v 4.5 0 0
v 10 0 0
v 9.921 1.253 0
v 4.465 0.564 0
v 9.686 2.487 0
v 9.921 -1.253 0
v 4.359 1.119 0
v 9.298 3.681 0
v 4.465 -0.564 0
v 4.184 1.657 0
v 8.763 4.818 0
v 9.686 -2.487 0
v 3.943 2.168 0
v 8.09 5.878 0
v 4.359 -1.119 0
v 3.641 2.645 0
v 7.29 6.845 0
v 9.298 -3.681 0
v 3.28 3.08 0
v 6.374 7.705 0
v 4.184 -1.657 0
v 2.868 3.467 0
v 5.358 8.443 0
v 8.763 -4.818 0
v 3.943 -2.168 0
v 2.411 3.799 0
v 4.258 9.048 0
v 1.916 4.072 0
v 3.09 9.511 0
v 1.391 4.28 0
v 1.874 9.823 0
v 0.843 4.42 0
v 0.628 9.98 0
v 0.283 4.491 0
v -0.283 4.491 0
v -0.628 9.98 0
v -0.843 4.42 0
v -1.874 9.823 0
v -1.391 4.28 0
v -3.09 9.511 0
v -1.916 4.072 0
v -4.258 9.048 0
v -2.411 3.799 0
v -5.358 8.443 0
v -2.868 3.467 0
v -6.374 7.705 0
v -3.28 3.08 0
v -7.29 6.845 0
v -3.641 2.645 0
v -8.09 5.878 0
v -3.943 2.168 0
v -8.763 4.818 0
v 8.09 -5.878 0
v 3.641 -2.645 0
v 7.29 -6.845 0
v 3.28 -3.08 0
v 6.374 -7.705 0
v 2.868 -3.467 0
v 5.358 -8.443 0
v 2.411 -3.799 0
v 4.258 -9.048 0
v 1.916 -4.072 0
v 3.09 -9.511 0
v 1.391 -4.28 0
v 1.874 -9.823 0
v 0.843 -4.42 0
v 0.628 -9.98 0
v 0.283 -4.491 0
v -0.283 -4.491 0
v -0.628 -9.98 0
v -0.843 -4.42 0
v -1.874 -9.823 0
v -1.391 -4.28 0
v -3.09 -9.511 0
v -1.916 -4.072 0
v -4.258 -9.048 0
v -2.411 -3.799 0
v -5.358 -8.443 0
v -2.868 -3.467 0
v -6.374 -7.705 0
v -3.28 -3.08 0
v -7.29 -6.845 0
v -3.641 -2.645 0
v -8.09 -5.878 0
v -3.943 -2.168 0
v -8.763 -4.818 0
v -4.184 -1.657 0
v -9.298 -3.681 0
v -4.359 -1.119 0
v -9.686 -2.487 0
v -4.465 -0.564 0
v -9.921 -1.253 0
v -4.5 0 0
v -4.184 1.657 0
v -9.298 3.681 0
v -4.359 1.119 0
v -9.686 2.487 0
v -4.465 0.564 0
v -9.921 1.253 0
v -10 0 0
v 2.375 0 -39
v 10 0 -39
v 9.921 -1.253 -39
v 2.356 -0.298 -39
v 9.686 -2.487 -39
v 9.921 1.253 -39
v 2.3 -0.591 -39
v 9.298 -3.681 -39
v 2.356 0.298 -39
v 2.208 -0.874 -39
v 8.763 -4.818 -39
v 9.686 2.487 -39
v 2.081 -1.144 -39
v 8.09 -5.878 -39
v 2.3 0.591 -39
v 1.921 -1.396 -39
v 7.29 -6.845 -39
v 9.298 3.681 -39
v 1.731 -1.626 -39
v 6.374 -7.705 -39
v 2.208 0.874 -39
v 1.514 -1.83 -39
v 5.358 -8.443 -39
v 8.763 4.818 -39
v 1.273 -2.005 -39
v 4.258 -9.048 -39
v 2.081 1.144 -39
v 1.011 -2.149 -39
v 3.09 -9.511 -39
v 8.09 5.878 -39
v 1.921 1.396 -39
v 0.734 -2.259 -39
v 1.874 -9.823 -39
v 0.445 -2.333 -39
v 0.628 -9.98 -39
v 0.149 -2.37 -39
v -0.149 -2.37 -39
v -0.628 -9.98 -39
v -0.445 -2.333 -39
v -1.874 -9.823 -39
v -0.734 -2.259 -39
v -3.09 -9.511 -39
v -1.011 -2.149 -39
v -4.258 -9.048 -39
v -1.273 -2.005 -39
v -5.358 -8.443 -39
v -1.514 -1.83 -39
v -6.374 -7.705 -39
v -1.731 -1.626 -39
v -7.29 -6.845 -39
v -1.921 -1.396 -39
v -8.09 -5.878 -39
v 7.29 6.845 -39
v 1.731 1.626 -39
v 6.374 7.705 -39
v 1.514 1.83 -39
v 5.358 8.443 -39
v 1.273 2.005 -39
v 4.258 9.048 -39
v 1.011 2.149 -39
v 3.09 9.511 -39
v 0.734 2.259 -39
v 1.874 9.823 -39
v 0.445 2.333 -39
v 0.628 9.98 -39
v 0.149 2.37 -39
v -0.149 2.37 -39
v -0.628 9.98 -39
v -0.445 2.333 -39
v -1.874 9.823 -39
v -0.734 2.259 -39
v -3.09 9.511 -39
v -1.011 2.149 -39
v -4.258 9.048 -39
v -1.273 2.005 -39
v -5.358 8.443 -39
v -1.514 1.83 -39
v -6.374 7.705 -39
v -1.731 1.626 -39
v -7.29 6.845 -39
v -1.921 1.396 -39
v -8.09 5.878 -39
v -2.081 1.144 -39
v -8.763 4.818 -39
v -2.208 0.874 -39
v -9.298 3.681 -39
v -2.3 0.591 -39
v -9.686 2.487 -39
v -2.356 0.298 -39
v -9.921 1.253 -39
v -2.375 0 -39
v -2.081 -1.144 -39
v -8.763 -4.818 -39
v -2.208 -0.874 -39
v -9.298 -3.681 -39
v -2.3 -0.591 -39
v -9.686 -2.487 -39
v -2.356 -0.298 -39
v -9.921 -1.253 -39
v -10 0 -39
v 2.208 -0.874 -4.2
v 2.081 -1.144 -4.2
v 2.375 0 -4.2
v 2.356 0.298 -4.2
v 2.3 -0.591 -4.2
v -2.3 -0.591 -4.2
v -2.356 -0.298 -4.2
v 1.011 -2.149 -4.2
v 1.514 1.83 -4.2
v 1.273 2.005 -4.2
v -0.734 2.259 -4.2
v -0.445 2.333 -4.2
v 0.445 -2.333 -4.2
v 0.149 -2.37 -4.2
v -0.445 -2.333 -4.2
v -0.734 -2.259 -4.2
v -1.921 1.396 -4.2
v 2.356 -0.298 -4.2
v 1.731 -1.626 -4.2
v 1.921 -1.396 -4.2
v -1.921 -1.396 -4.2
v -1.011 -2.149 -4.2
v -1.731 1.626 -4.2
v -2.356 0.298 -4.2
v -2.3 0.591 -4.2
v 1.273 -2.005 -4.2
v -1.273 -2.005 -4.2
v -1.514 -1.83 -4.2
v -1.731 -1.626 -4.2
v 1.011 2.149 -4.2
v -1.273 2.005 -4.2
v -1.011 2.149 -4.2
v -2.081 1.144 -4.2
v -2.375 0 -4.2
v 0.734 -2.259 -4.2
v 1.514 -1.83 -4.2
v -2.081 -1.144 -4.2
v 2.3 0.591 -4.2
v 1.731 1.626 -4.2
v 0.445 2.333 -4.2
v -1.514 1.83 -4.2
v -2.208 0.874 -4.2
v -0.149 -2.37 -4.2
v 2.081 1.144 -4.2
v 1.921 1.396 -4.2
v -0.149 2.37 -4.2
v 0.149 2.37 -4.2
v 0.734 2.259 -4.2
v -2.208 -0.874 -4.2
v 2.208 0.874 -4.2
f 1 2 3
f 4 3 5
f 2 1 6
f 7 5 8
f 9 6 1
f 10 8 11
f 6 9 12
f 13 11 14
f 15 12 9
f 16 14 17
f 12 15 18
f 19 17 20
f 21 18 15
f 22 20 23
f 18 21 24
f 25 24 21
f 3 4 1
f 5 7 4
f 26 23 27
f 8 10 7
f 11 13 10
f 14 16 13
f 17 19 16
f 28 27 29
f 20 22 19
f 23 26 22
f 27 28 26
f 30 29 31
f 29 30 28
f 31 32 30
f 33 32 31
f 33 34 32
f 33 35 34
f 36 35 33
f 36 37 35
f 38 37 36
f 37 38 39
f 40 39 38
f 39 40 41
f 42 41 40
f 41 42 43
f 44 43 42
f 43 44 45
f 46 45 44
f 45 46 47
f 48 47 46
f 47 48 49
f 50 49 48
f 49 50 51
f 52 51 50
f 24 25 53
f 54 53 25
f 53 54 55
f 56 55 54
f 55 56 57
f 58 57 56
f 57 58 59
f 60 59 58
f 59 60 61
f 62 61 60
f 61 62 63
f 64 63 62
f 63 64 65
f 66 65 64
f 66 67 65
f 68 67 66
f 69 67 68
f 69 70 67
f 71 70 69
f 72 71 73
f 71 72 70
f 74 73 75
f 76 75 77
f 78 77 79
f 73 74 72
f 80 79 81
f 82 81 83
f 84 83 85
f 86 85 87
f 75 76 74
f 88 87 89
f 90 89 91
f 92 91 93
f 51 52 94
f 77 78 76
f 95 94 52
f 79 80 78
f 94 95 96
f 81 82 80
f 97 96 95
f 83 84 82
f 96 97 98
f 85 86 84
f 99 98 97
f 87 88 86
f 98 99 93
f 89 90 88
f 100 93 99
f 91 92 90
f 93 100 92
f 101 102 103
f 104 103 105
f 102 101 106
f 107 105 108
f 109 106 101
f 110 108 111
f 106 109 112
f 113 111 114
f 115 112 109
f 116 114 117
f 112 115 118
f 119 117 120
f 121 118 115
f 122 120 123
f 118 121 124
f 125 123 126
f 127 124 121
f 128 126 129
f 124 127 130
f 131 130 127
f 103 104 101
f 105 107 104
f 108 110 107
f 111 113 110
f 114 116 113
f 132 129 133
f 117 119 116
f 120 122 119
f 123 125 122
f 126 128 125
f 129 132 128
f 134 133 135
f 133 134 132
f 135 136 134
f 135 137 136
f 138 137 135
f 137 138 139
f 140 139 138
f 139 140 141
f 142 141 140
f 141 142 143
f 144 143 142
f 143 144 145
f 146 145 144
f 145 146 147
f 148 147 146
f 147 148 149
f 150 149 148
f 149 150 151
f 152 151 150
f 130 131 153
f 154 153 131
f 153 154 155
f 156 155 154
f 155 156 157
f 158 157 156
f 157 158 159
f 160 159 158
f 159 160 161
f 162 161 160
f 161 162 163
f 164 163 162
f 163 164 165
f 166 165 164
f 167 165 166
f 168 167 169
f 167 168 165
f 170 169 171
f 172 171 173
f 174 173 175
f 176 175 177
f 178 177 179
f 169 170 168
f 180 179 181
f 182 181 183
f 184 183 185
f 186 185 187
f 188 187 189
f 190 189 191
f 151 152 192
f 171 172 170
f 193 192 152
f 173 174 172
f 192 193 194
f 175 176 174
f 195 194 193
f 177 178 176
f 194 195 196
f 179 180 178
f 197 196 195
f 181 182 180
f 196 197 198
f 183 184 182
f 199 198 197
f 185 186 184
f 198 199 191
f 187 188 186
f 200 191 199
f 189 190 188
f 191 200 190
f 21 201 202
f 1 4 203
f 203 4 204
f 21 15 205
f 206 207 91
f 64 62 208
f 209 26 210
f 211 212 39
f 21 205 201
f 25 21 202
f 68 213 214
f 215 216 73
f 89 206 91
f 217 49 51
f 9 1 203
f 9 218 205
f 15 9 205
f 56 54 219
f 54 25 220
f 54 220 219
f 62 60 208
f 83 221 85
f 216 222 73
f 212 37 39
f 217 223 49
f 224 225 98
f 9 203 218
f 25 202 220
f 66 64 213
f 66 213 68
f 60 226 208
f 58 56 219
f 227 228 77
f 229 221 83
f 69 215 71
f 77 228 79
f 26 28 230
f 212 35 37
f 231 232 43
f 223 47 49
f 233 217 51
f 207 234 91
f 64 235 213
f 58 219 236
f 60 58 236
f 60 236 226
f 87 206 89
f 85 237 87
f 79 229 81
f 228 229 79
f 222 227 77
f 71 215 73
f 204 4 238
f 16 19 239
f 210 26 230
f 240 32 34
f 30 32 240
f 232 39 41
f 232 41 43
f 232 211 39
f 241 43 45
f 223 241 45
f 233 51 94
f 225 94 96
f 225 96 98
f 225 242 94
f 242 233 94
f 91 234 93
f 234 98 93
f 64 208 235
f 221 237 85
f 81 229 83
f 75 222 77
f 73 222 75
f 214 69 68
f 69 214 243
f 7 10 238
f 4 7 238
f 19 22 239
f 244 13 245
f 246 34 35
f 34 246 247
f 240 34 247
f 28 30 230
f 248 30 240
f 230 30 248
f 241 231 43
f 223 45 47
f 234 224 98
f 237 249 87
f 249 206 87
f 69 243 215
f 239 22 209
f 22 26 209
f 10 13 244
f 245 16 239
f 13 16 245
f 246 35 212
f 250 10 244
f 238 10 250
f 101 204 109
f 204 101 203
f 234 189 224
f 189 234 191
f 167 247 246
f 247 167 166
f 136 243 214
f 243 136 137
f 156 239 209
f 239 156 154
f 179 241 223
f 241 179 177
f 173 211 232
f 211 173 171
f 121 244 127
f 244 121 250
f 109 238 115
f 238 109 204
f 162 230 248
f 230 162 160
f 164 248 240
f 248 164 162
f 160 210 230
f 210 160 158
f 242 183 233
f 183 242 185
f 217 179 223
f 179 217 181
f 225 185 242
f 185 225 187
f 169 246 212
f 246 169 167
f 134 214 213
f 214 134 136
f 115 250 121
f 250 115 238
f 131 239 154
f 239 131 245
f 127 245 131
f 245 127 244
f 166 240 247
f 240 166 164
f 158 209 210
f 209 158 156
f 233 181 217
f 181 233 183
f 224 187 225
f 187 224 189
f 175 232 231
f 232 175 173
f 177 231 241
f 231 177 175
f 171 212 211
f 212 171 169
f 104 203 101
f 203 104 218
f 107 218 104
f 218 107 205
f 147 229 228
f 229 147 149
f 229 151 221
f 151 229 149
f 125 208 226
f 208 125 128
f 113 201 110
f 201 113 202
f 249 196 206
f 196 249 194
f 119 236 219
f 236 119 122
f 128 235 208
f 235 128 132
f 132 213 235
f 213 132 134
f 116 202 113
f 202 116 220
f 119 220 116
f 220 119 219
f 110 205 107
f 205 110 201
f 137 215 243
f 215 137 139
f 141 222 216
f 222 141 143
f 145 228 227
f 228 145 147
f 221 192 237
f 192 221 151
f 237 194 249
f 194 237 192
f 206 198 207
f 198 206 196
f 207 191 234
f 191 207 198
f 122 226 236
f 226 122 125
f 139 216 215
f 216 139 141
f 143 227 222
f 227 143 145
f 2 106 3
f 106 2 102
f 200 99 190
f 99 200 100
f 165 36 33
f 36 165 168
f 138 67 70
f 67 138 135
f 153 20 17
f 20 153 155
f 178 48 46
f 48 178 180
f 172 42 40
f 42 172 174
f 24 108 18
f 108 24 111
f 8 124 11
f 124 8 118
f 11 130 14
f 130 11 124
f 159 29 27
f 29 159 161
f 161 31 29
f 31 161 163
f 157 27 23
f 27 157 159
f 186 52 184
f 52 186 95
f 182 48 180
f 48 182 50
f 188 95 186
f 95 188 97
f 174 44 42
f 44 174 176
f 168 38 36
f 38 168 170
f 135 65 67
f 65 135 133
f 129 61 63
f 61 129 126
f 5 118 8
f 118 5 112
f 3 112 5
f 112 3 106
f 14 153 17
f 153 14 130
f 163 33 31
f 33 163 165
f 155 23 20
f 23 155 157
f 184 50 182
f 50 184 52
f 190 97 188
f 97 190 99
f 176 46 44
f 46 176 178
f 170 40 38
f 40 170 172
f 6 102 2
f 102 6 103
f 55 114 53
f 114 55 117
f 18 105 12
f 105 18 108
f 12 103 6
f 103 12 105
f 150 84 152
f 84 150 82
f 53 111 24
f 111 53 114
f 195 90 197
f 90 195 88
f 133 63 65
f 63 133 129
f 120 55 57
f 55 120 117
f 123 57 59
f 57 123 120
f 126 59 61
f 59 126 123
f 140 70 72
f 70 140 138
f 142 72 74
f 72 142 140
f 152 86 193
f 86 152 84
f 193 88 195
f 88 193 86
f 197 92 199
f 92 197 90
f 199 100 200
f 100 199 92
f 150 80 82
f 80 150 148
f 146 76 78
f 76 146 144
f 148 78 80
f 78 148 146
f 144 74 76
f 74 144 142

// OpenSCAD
$fn = 50;


difference() {
	union() {
		translate(v = [0, 0, -39.0000000000]) {
			cylinder(h = 39, r = 10.0000000000);
		}
	}
	union() {
		translate(v = [0, 0, 0]) {
			rotate(a = [0, 0, 0]) {
				difference() {
					union() {
						#translate(v = [0, 0, -39.0000000000]) {
							cylinder(h = 39, r = 2.2500000000);
						}
						#translate(v = [0, 0, -4.2000000000]) {
							cylinder(h = 4.2000000000, r1 = 2.3750000000, r2 = 4.5000000000);
						}
						#translate(v = [0, 0, -39.0000000000]) {
							cylinder(h = 39, r = 2.3750000000);
						}
						#translate(v = [0, 0, -39.0000000000]) {
							cylinder(h = 39, r = 2.2500000000);
						}
					}
					union();
				}
			}
		}
	}
}
